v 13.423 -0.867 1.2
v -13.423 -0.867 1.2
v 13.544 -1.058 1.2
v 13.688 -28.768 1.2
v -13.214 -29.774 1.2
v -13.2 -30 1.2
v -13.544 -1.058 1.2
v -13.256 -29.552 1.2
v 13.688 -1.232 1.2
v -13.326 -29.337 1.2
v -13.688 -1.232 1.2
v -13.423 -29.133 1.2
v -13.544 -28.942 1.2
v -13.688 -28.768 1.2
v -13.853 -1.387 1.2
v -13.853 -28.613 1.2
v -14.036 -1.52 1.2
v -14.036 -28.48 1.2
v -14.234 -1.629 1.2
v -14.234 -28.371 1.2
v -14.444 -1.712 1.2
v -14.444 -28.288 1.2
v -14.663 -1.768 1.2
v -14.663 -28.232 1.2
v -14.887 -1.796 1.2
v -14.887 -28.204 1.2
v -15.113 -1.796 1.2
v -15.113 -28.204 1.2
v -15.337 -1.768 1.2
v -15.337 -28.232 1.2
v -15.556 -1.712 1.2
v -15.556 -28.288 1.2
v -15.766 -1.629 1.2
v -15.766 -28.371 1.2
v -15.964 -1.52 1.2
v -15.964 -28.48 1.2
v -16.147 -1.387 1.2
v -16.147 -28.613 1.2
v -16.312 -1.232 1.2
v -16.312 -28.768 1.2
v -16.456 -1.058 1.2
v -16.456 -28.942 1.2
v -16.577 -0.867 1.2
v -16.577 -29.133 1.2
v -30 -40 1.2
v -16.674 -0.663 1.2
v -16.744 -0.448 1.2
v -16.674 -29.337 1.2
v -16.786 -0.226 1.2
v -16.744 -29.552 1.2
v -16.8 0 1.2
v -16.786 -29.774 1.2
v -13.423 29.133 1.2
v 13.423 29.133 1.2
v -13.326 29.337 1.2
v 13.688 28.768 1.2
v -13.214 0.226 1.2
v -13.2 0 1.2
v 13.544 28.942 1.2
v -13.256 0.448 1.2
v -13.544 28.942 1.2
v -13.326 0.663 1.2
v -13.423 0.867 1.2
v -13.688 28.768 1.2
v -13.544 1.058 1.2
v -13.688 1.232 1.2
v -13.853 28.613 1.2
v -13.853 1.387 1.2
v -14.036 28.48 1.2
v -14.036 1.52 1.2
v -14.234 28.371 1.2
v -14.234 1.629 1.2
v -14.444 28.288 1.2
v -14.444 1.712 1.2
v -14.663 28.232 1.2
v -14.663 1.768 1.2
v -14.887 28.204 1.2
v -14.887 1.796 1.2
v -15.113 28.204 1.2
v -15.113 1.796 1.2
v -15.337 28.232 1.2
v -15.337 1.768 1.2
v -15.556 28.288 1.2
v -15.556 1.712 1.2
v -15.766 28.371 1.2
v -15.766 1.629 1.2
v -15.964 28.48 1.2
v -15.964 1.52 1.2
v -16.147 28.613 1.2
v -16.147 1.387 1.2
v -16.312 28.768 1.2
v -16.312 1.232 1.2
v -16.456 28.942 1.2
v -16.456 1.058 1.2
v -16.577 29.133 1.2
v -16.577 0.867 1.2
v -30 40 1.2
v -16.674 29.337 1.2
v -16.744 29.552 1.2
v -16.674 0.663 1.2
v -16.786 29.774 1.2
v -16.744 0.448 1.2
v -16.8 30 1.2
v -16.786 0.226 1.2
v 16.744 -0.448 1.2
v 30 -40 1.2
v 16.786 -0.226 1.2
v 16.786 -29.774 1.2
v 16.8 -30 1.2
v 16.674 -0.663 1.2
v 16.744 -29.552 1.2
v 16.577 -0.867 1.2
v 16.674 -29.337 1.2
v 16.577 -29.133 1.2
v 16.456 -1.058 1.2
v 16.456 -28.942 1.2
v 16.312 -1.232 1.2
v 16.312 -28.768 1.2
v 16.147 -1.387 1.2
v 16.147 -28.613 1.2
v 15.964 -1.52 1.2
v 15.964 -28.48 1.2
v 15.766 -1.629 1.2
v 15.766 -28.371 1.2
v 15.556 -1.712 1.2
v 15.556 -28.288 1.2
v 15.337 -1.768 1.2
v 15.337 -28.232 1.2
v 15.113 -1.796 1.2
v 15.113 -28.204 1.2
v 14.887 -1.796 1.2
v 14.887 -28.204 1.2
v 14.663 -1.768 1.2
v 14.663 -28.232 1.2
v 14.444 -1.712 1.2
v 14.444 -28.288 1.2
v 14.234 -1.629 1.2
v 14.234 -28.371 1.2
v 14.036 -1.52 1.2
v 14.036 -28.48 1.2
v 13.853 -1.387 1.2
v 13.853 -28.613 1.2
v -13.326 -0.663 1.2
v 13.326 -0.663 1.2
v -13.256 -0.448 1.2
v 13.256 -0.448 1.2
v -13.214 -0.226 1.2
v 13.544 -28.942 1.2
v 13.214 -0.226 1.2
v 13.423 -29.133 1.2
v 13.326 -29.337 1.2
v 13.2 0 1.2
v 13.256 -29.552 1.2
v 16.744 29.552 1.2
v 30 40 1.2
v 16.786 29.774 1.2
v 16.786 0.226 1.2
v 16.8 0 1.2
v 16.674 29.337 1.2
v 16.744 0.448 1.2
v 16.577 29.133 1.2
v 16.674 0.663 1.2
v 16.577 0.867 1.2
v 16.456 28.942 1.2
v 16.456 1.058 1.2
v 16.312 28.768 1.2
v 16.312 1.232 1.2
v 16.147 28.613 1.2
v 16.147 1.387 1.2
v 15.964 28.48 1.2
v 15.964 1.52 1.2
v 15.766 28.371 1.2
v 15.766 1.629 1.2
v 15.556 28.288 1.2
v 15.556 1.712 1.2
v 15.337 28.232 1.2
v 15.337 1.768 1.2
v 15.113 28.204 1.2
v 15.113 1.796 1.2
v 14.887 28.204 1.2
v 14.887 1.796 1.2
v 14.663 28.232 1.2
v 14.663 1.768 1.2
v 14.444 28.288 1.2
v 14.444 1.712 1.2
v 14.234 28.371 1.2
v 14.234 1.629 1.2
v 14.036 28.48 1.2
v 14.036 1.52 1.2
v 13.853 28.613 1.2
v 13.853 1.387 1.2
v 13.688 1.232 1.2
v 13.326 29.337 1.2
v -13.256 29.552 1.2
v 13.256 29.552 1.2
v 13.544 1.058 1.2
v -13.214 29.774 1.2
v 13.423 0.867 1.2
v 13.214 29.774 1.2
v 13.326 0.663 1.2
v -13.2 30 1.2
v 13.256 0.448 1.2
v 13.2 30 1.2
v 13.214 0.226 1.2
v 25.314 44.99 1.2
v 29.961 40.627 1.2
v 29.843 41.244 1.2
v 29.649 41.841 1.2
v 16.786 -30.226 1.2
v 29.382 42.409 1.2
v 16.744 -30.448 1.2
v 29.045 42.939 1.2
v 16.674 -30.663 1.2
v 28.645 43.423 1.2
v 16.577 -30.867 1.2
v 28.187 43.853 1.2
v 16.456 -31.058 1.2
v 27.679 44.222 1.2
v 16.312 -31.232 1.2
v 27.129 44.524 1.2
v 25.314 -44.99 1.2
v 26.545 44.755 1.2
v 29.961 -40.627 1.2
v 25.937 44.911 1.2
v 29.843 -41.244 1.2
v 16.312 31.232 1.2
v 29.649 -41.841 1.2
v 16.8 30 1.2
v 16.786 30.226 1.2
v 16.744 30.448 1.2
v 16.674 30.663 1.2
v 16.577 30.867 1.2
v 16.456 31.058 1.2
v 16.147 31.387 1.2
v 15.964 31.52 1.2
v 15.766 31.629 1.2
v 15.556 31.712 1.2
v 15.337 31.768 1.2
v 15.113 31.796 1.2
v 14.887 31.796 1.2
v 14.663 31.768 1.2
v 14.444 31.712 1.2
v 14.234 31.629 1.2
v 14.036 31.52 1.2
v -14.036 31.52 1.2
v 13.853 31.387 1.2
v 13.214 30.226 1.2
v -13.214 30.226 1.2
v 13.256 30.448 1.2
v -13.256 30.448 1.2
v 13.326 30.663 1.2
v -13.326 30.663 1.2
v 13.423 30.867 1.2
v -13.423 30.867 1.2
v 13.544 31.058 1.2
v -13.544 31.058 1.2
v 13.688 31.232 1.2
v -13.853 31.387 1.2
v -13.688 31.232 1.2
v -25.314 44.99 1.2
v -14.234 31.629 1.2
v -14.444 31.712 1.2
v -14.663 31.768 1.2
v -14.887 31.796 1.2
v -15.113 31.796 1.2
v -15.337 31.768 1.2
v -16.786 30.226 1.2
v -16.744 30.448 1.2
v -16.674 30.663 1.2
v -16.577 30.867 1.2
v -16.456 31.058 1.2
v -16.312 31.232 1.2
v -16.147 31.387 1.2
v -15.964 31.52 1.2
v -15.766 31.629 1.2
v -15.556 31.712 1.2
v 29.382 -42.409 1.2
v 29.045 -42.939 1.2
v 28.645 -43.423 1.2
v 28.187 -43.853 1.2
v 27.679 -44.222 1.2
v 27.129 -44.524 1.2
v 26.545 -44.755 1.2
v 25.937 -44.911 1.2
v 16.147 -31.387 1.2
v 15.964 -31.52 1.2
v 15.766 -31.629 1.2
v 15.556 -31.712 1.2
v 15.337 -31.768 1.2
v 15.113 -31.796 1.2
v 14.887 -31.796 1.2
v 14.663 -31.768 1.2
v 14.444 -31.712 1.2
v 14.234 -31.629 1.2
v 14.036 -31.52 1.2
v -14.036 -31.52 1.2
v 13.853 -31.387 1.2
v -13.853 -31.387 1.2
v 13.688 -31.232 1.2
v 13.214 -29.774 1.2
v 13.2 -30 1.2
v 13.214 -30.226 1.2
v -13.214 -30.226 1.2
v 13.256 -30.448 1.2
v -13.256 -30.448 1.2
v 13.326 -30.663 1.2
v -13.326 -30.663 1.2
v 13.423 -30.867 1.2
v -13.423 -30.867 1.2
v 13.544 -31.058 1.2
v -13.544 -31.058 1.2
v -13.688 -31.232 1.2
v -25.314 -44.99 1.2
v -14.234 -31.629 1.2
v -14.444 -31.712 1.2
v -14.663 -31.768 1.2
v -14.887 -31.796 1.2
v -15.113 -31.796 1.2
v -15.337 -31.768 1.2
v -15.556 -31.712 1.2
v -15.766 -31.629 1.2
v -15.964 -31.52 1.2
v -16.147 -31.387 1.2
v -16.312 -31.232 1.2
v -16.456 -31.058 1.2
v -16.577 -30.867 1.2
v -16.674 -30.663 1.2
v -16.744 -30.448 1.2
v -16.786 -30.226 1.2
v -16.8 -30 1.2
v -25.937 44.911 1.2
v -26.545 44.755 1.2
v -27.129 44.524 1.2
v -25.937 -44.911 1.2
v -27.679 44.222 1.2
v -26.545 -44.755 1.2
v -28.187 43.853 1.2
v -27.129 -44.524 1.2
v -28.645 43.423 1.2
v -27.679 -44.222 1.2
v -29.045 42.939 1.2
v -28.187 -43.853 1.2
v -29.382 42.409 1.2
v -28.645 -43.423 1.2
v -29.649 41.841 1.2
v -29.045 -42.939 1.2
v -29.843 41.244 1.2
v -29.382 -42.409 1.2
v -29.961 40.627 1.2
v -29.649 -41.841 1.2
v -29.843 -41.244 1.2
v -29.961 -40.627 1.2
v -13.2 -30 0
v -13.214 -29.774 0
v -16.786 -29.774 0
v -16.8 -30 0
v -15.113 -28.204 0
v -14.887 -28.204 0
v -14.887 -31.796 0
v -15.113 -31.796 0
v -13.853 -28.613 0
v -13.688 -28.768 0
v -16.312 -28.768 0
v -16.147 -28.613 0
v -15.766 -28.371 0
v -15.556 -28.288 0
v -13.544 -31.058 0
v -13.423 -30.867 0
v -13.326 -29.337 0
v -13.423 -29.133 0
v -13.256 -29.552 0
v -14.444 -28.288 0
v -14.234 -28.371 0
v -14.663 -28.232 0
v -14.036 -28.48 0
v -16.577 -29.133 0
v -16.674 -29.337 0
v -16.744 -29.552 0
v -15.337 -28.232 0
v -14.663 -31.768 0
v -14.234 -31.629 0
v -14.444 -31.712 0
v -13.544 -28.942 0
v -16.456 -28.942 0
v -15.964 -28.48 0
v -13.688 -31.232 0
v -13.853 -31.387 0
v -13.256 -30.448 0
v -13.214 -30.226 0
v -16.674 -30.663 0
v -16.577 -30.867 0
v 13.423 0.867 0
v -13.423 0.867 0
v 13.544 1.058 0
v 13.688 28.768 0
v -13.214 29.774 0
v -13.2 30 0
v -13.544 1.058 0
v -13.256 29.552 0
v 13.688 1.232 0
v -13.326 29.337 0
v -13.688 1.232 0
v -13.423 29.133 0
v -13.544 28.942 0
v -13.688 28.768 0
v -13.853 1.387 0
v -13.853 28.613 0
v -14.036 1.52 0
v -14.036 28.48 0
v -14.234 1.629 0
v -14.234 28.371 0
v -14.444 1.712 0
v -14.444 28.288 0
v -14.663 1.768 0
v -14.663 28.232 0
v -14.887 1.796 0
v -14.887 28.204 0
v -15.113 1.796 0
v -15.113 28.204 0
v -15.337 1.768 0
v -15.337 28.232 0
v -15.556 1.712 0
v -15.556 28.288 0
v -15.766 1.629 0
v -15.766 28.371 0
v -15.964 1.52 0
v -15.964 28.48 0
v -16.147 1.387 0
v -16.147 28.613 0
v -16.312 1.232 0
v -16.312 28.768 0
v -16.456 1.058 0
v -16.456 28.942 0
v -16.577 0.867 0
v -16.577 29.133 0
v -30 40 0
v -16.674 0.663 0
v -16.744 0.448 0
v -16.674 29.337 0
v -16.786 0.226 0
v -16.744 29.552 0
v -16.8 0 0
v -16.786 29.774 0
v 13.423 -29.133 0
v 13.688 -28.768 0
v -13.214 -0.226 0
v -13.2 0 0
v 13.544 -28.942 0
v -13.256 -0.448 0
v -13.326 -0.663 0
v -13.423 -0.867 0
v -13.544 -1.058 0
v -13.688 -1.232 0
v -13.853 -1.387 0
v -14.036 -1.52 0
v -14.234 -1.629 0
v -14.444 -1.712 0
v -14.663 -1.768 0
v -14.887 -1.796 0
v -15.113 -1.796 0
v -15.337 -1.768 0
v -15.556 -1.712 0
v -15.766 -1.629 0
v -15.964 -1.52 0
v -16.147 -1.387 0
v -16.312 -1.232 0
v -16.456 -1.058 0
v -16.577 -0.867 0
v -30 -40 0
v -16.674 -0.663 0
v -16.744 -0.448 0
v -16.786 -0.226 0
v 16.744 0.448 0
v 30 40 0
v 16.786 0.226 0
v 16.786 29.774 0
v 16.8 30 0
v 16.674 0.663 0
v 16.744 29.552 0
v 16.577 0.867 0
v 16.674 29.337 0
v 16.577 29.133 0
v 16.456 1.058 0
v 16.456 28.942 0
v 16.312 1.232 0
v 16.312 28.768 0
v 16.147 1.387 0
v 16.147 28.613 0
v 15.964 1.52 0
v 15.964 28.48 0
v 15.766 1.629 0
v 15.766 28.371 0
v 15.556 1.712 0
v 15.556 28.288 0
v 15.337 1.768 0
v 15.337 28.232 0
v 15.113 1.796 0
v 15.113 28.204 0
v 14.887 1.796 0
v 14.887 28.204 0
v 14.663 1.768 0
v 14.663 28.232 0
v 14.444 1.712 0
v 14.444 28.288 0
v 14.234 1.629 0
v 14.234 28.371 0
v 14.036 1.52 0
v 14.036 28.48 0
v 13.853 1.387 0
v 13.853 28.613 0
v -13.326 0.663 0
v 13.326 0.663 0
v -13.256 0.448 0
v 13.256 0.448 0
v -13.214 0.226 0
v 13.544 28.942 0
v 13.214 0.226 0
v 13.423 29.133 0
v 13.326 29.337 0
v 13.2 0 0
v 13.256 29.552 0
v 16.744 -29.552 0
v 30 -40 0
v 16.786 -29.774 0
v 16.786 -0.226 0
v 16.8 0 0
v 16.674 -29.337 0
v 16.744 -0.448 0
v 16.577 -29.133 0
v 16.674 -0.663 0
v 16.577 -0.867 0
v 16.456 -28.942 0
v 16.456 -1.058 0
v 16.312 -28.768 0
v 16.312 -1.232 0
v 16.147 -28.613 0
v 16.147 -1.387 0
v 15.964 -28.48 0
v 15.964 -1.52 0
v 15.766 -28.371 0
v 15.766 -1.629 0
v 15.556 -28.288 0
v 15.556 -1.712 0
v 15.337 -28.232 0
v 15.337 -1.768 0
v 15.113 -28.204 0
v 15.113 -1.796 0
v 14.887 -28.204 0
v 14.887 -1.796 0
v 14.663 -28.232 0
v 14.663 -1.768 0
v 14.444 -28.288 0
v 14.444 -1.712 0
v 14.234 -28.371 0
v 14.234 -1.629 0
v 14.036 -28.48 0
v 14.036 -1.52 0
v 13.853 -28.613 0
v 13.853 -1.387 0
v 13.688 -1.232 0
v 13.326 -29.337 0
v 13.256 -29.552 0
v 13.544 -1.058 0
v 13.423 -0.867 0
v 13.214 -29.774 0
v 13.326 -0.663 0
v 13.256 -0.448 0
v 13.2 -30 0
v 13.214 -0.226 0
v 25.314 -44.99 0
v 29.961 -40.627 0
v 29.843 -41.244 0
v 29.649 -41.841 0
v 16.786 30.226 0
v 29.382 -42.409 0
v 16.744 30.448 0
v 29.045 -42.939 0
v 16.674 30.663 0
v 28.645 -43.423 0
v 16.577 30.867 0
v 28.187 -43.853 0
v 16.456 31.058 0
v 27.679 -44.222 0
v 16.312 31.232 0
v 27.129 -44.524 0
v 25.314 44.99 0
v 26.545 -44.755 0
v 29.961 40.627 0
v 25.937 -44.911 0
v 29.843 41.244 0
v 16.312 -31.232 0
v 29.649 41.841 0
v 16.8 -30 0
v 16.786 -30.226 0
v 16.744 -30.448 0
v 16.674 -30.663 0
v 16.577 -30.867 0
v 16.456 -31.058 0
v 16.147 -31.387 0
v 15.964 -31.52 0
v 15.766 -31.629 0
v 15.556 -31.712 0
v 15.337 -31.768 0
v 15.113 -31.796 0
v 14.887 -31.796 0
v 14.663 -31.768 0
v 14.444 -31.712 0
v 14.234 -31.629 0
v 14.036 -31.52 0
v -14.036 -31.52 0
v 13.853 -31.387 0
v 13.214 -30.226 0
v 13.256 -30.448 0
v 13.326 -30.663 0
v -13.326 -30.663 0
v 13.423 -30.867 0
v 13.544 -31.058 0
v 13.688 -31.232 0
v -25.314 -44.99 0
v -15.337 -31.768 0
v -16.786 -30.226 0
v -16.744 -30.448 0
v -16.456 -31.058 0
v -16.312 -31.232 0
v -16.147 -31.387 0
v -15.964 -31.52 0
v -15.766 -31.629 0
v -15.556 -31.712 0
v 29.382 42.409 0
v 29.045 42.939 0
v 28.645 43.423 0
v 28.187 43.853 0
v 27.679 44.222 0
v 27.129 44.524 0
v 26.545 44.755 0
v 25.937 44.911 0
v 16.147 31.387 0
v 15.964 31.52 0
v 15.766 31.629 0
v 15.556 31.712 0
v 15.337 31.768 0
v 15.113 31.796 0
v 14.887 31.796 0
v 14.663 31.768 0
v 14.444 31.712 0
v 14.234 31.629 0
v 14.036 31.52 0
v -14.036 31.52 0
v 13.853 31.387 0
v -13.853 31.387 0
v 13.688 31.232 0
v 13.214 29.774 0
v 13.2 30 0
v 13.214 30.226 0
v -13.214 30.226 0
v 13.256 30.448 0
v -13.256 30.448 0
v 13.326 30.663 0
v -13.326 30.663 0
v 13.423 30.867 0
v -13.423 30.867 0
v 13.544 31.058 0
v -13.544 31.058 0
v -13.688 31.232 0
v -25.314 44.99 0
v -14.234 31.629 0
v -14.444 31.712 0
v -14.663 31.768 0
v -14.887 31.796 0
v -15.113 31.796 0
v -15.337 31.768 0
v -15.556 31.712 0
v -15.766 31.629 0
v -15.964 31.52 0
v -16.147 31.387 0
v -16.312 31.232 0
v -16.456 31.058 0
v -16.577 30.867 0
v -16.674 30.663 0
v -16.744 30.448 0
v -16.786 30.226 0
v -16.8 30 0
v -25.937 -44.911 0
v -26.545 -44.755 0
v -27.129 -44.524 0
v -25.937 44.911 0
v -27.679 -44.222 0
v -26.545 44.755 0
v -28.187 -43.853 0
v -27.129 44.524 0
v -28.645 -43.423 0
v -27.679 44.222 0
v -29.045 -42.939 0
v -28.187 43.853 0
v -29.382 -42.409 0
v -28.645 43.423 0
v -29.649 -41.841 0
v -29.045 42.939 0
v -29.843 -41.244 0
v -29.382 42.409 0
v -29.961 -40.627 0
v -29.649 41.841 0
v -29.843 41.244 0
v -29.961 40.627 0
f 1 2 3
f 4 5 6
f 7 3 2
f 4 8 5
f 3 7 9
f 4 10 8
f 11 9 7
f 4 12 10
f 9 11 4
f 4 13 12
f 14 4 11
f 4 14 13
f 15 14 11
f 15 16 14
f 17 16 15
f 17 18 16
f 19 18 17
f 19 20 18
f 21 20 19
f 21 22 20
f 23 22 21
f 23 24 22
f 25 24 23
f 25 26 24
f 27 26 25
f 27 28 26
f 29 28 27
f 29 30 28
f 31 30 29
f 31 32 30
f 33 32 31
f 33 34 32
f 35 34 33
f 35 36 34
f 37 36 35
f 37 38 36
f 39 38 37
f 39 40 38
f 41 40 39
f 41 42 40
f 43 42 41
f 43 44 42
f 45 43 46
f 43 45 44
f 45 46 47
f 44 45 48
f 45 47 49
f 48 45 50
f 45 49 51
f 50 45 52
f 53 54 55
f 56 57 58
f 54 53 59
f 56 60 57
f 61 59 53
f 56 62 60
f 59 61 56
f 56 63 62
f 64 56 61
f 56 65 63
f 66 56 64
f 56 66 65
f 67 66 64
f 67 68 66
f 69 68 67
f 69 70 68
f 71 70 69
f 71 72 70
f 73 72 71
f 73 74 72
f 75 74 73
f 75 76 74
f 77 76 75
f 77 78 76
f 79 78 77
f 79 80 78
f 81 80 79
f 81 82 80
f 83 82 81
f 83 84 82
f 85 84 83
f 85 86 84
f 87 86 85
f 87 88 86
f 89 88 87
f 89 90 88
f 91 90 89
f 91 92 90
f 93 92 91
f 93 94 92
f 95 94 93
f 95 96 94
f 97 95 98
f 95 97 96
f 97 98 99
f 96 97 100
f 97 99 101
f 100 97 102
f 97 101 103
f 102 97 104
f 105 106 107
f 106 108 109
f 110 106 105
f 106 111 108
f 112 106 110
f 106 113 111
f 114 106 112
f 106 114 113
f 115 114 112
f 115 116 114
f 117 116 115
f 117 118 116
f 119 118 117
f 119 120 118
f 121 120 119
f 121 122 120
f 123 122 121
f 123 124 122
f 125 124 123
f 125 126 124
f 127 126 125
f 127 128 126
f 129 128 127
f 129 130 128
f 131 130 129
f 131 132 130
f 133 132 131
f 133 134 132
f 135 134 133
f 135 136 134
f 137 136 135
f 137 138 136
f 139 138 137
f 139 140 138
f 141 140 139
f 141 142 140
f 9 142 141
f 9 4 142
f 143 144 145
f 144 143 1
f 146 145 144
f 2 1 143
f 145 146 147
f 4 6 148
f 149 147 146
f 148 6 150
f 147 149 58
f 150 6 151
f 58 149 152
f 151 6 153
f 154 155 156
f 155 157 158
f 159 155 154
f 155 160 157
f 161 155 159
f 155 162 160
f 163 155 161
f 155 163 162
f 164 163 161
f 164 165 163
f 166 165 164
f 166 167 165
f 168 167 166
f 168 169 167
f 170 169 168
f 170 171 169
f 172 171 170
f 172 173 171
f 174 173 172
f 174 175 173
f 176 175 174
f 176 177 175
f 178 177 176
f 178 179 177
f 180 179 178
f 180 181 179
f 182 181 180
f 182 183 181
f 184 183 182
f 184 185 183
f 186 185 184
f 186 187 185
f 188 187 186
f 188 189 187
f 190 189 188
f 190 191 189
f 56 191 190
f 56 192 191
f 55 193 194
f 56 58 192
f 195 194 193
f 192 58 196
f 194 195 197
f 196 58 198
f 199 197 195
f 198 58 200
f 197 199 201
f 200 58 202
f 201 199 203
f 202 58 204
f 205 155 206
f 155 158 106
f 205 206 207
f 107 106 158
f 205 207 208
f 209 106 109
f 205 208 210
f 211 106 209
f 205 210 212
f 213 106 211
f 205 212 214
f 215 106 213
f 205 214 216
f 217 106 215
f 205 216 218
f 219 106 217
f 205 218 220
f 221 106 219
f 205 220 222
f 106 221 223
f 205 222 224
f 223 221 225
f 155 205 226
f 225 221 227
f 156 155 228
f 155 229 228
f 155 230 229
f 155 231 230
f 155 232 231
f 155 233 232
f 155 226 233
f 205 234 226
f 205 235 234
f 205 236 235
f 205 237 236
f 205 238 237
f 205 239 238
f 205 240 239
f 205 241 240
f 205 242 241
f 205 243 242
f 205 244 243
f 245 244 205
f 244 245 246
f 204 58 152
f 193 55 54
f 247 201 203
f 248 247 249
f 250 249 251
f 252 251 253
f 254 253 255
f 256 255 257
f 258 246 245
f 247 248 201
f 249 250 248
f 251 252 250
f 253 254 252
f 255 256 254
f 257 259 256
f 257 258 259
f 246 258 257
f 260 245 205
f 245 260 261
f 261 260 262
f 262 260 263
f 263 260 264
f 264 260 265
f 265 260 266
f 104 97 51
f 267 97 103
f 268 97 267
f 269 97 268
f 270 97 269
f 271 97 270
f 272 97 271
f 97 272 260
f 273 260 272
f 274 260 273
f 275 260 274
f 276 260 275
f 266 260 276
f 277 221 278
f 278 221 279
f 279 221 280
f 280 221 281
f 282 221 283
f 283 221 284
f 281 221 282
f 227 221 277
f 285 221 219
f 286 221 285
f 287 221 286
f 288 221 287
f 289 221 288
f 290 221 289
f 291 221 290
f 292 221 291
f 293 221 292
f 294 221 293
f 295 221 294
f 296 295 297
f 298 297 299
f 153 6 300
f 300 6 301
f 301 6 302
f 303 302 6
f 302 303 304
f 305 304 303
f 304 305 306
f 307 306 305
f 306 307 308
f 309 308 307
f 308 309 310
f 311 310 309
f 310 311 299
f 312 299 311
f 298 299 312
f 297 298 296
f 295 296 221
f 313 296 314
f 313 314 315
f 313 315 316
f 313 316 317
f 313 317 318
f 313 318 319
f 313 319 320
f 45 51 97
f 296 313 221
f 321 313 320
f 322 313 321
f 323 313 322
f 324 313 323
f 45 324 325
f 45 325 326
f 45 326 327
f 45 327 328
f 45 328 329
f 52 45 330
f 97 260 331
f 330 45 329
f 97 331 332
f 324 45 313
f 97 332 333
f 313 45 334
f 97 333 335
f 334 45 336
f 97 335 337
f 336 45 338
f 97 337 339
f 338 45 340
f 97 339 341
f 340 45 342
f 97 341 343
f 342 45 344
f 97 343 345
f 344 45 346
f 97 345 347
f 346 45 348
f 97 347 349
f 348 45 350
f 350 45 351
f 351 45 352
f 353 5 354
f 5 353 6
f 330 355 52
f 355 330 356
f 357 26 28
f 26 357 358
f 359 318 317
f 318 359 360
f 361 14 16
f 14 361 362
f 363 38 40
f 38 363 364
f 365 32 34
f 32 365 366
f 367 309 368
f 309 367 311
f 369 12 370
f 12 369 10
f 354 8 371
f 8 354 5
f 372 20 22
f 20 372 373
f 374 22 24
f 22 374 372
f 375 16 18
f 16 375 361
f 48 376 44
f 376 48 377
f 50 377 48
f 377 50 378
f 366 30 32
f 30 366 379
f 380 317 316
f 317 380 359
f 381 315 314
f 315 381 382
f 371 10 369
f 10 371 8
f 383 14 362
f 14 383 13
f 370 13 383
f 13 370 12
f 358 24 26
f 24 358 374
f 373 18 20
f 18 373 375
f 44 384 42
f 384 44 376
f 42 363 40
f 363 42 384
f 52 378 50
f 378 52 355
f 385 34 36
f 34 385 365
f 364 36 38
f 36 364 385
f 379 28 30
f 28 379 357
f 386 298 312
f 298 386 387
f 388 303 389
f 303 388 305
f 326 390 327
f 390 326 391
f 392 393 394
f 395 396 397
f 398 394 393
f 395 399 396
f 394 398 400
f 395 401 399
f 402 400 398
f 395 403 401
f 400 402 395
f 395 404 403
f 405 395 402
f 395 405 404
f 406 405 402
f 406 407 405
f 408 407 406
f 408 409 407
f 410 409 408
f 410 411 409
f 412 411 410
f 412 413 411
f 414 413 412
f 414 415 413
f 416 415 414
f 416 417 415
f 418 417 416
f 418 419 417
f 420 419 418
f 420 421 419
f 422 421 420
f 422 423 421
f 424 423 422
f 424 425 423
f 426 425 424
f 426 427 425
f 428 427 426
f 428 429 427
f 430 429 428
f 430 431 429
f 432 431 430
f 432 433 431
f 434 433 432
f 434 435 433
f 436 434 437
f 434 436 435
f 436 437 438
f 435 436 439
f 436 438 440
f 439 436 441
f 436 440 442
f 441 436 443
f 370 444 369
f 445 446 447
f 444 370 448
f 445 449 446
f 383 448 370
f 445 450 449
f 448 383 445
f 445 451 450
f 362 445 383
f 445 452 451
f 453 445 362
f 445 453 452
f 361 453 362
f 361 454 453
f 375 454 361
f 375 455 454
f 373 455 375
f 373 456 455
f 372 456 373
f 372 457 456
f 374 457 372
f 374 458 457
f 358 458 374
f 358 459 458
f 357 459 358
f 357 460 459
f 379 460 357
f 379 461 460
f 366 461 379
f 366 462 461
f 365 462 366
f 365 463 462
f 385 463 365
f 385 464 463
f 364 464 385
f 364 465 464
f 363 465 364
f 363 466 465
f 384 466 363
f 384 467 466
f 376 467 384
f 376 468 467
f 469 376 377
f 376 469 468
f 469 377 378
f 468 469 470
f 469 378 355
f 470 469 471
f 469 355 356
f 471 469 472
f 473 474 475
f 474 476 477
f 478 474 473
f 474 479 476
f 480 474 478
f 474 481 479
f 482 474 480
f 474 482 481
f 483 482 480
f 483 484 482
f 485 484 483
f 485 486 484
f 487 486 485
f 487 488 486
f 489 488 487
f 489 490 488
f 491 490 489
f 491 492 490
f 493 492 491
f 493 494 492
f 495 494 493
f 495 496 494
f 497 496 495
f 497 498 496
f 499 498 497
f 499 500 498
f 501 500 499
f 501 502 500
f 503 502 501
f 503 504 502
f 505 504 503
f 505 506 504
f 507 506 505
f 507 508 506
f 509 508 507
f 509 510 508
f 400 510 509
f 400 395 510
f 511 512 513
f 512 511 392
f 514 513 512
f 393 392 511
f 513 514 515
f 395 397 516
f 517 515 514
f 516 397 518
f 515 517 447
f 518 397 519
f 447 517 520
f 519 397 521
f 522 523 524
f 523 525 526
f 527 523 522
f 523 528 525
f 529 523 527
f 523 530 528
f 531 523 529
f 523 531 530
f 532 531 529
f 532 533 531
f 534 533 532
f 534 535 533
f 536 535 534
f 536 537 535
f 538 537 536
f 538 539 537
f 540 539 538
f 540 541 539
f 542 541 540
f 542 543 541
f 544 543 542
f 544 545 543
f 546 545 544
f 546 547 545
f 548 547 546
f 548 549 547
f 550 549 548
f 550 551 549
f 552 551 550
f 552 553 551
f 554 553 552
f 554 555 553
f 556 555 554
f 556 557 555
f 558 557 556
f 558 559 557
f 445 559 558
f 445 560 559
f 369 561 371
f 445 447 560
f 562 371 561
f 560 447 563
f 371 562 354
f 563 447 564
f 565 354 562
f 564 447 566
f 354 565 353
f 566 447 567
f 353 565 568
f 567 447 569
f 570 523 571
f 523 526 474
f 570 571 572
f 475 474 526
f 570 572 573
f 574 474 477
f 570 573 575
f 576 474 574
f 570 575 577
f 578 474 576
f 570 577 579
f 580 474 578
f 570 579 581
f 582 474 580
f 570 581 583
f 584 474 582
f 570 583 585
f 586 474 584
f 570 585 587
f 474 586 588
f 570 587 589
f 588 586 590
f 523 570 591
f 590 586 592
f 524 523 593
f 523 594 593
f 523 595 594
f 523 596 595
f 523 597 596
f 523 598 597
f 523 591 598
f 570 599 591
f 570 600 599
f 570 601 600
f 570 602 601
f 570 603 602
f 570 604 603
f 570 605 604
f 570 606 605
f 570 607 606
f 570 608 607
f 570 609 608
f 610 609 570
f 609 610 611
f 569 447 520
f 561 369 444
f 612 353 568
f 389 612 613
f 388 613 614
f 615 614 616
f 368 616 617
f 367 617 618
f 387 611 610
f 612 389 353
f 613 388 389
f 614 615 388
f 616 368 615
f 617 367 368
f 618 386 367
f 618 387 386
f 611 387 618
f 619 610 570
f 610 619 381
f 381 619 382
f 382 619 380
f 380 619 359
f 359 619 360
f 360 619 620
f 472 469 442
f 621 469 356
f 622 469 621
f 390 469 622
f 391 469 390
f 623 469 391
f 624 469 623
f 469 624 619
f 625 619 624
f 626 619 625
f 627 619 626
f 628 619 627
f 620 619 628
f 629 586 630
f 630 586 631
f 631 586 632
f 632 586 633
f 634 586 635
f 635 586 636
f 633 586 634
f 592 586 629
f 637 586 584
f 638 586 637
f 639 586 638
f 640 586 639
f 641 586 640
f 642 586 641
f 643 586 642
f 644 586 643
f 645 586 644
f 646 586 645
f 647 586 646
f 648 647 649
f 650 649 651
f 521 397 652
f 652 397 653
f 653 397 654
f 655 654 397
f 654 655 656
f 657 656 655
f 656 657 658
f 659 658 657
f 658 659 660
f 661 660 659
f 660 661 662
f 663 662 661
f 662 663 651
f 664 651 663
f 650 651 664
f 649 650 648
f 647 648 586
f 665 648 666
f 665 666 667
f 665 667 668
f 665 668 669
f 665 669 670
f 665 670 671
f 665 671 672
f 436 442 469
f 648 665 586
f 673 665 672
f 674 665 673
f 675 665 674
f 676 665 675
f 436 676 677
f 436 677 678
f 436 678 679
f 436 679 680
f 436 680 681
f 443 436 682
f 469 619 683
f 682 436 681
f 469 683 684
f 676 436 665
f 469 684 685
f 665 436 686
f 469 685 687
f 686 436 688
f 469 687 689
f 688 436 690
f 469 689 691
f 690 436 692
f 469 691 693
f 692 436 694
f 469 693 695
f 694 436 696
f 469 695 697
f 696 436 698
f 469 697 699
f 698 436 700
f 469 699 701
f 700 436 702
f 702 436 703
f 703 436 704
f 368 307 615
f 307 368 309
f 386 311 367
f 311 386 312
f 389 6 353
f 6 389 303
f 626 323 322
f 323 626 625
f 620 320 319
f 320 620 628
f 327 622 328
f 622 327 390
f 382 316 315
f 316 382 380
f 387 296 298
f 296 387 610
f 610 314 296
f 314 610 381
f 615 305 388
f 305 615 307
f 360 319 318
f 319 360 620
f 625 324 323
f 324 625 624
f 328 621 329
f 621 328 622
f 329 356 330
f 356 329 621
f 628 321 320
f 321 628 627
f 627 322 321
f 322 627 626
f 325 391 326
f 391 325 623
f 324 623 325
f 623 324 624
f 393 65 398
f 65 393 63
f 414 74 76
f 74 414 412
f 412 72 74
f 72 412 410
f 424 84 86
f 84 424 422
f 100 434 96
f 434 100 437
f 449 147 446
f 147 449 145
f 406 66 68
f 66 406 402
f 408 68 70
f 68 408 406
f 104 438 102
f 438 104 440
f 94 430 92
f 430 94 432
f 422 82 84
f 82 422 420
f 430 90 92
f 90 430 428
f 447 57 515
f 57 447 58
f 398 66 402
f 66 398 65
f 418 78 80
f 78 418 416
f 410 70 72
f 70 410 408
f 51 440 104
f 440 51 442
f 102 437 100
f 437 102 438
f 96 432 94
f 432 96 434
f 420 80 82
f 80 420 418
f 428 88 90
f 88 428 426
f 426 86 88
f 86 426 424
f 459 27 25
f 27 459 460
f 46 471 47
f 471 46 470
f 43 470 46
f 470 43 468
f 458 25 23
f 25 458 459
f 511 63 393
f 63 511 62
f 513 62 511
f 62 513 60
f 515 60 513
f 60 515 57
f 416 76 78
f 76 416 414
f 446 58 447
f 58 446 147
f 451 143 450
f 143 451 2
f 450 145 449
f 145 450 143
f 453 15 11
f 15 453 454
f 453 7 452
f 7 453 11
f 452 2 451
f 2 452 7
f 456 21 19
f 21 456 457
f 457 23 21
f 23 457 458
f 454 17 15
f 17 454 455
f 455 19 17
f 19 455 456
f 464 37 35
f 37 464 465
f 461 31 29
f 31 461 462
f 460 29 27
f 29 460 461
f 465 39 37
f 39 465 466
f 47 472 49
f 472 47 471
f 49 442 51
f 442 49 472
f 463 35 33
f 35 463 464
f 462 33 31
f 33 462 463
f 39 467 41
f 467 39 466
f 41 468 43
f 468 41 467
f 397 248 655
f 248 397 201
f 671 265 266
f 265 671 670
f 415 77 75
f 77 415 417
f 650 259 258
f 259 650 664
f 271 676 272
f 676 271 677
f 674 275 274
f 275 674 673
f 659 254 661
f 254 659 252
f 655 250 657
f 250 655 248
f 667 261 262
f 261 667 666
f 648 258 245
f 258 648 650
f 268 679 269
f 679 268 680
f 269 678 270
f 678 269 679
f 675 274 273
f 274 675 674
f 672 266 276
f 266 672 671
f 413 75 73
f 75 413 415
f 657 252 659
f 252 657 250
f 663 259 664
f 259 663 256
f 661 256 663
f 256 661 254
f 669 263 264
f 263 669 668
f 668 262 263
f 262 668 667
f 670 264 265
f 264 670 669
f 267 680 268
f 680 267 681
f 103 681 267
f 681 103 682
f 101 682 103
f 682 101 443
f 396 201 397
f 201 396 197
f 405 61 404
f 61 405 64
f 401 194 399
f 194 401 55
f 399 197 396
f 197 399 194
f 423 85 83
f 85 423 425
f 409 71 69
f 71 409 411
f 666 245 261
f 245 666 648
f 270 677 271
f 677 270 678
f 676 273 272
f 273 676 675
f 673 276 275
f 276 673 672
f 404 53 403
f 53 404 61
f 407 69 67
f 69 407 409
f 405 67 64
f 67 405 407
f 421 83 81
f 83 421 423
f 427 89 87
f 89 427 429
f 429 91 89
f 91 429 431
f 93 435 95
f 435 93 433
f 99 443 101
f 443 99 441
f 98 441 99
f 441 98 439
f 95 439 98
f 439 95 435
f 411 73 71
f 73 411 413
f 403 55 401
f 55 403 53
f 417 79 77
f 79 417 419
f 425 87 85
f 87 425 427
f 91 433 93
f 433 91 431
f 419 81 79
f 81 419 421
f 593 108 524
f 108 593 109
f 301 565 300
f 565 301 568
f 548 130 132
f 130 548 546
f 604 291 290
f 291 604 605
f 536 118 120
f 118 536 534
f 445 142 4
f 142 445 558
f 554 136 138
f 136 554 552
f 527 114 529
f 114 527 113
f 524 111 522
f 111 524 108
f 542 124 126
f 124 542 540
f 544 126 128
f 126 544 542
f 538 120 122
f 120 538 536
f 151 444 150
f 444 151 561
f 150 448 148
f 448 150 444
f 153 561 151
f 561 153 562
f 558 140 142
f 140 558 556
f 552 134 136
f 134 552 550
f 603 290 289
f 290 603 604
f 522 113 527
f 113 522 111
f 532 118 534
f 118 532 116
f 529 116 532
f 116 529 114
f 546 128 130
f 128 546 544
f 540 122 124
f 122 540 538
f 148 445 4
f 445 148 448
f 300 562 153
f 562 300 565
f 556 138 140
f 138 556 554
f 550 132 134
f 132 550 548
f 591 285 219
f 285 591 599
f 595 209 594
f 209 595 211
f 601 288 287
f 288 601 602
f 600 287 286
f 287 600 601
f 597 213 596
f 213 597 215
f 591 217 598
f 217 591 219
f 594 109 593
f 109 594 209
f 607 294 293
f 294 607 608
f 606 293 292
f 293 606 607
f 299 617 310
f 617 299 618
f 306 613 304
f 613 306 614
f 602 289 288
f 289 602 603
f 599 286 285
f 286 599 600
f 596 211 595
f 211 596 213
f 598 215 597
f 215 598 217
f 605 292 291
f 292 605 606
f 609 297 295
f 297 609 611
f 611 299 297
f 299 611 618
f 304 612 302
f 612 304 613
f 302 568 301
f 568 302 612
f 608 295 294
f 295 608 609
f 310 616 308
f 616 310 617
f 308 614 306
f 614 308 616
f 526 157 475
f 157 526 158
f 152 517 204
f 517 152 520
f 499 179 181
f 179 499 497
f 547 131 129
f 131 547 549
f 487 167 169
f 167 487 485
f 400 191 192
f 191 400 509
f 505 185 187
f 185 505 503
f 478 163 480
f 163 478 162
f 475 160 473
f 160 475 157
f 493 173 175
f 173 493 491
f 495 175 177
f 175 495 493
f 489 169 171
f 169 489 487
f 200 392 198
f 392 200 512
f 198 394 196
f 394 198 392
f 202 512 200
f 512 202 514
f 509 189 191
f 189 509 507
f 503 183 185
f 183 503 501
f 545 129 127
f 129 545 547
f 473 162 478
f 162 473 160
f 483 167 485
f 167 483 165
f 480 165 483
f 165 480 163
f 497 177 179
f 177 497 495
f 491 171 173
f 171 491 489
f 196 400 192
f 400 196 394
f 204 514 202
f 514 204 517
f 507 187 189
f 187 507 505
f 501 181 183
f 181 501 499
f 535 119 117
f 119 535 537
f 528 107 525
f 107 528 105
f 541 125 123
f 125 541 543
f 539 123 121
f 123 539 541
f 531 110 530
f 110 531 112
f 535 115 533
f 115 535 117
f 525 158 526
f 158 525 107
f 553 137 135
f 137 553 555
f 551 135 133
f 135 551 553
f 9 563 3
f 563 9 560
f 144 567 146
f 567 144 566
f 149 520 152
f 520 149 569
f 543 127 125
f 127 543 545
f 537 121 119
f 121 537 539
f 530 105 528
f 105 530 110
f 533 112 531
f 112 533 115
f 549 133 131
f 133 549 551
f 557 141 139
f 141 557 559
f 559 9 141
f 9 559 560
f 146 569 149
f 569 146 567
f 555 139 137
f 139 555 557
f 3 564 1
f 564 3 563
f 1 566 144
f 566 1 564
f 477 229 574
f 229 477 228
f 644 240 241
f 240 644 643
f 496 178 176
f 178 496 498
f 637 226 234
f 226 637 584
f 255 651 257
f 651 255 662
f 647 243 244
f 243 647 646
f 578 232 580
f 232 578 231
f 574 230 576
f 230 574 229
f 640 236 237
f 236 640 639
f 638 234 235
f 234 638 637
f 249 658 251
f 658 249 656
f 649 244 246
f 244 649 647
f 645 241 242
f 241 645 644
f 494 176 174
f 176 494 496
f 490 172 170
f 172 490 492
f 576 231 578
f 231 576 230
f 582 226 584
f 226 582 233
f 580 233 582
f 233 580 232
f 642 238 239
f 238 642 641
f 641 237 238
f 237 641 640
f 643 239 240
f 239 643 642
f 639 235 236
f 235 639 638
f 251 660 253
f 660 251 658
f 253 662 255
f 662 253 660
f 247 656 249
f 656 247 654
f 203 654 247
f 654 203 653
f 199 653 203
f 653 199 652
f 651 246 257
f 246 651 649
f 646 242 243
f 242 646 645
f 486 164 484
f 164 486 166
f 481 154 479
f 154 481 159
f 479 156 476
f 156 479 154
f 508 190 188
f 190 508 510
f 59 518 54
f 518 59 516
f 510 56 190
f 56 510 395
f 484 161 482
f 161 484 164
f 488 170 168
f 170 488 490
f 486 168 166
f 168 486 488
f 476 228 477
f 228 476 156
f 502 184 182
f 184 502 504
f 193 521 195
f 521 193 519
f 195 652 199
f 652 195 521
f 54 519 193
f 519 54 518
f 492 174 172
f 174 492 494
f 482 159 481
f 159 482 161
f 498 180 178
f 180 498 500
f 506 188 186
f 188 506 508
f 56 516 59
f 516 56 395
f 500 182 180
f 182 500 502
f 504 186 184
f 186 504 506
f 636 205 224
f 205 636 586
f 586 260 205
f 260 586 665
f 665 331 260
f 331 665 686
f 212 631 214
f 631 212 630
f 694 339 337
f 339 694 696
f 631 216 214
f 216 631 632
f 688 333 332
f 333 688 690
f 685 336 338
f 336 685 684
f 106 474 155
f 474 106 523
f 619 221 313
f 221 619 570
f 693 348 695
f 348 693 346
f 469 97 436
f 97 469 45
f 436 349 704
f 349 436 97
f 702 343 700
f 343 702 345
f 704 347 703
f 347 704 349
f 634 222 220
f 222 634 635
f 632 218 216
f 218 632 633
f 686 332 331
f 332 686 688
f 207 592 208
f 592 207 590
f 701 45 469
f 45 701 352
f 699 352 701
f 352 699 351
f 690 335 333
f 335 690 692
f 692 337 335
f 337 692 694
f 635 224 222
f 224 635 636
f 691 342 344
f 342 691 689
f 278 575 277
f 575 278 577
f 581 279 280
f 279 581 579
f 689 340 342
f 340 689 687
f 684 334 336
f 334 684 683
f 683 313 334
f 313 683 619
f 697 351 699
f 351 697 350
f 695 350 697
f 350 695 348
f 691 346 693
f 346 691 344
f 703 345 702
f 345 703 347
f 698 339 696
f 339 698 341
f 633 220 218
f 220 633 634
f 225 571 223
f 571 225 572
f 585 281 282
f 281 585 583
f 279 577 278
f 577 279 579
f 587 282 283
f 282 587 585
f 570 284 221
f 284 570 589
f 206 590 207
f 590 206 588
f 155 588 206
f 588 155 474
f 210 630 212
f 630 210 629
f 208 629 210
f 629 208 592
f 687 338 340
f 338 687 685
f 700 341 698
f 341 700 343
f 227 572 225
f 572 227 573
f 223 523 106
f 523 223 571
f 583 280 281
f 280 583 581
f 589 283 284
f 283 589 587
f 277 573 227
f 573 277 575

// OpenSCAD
$fn = 50;


difference() {
	union() {
		hull() {
			translate(v = [-25.0000000000, 40.0000000000, 0]) {
				cylinder(h = 99, r = 5);
			}
			translate(v = [25.0000000000, 40.0000000000, 0]) {
				cylinder(h = 99, r = 5);
			}
			translate(v = [-25.0000000000, -40.0000000000, 0]) {
				cylinder(h = 99, r = 5);
			}
			translate(v = [25.0000000000, -40.0000000000, 0]) {
				cylinder(h = 99, r = 5);
			}
		}
	}
	union() {
		translate(v = [0, 0, 1.2000000000]) {
			hull() {
				translate(v = [-25.0000000000, 40.0000000000, 0]) {
					cylinder(h = 97.8000000000, r = 3.8000000000);
				}
				translate(v = [25.0000000000, 40.0000000000, 0]) {
					cylinder(h = 97.8000000000, r = 3.8000000000);
				}
				translate(v = [-25.0000000000, -40.0000000000, 0]) {
					cylinder(h = 97.8000000000, r = 3.8000000000);
				}
				translate(v = [25.0000000000, -40.0000000000, 0]) {
					cylinder(h = 97.8000000000, r = 3.8000000000);
				}
			}
		}
		#translate(v = [-15.0000000000, -30.0000000000, 0]) {
			cylinder(h = 1.2000000000, r = 1.8000000000);
		}
		#translate(v = [-15.0000000000, 0.0000000000, 0]) {
			cylinder(h = 1.2000000000, r = 1.8000000000);
		}
		#translate(v = [-15.0000000000, 30.0000000000, 0]) {
			cylinder(h = 1.2000000000, r = 1.8000000000);
		}
		#translate(v = [15.0000000000, -30.0000000000, 0]) {
			cylinder(h = 1.2000000000, r = 1.8000000000);
		}
		#translate(v = [15.0000000000, 0.0000000000, 0]) {
			cylinder(h = 1.2000000000, r = 1.8000000000);
		}
		#translate(v = [15.0000000000, 30.0000000000, 0]) {
			cylinder(h = 1.2000000000, r = 1.8000000000);
		}
		translate(v = [-250.0000000000, -250.0000000000, 1.2000000000]) {
			cube(size = [500, 500, 500]);
		}
		translate(v = [-250.0000000000, -250.0000000000, 1.2000000000]) {
			cube(size = [500, 500, 500]);
		}
		translate(v = [-250.0000000000, -250.0000000000, 1.2000000000]) {
			cube(size = [500, 500, 500]);
		}
	}
}
